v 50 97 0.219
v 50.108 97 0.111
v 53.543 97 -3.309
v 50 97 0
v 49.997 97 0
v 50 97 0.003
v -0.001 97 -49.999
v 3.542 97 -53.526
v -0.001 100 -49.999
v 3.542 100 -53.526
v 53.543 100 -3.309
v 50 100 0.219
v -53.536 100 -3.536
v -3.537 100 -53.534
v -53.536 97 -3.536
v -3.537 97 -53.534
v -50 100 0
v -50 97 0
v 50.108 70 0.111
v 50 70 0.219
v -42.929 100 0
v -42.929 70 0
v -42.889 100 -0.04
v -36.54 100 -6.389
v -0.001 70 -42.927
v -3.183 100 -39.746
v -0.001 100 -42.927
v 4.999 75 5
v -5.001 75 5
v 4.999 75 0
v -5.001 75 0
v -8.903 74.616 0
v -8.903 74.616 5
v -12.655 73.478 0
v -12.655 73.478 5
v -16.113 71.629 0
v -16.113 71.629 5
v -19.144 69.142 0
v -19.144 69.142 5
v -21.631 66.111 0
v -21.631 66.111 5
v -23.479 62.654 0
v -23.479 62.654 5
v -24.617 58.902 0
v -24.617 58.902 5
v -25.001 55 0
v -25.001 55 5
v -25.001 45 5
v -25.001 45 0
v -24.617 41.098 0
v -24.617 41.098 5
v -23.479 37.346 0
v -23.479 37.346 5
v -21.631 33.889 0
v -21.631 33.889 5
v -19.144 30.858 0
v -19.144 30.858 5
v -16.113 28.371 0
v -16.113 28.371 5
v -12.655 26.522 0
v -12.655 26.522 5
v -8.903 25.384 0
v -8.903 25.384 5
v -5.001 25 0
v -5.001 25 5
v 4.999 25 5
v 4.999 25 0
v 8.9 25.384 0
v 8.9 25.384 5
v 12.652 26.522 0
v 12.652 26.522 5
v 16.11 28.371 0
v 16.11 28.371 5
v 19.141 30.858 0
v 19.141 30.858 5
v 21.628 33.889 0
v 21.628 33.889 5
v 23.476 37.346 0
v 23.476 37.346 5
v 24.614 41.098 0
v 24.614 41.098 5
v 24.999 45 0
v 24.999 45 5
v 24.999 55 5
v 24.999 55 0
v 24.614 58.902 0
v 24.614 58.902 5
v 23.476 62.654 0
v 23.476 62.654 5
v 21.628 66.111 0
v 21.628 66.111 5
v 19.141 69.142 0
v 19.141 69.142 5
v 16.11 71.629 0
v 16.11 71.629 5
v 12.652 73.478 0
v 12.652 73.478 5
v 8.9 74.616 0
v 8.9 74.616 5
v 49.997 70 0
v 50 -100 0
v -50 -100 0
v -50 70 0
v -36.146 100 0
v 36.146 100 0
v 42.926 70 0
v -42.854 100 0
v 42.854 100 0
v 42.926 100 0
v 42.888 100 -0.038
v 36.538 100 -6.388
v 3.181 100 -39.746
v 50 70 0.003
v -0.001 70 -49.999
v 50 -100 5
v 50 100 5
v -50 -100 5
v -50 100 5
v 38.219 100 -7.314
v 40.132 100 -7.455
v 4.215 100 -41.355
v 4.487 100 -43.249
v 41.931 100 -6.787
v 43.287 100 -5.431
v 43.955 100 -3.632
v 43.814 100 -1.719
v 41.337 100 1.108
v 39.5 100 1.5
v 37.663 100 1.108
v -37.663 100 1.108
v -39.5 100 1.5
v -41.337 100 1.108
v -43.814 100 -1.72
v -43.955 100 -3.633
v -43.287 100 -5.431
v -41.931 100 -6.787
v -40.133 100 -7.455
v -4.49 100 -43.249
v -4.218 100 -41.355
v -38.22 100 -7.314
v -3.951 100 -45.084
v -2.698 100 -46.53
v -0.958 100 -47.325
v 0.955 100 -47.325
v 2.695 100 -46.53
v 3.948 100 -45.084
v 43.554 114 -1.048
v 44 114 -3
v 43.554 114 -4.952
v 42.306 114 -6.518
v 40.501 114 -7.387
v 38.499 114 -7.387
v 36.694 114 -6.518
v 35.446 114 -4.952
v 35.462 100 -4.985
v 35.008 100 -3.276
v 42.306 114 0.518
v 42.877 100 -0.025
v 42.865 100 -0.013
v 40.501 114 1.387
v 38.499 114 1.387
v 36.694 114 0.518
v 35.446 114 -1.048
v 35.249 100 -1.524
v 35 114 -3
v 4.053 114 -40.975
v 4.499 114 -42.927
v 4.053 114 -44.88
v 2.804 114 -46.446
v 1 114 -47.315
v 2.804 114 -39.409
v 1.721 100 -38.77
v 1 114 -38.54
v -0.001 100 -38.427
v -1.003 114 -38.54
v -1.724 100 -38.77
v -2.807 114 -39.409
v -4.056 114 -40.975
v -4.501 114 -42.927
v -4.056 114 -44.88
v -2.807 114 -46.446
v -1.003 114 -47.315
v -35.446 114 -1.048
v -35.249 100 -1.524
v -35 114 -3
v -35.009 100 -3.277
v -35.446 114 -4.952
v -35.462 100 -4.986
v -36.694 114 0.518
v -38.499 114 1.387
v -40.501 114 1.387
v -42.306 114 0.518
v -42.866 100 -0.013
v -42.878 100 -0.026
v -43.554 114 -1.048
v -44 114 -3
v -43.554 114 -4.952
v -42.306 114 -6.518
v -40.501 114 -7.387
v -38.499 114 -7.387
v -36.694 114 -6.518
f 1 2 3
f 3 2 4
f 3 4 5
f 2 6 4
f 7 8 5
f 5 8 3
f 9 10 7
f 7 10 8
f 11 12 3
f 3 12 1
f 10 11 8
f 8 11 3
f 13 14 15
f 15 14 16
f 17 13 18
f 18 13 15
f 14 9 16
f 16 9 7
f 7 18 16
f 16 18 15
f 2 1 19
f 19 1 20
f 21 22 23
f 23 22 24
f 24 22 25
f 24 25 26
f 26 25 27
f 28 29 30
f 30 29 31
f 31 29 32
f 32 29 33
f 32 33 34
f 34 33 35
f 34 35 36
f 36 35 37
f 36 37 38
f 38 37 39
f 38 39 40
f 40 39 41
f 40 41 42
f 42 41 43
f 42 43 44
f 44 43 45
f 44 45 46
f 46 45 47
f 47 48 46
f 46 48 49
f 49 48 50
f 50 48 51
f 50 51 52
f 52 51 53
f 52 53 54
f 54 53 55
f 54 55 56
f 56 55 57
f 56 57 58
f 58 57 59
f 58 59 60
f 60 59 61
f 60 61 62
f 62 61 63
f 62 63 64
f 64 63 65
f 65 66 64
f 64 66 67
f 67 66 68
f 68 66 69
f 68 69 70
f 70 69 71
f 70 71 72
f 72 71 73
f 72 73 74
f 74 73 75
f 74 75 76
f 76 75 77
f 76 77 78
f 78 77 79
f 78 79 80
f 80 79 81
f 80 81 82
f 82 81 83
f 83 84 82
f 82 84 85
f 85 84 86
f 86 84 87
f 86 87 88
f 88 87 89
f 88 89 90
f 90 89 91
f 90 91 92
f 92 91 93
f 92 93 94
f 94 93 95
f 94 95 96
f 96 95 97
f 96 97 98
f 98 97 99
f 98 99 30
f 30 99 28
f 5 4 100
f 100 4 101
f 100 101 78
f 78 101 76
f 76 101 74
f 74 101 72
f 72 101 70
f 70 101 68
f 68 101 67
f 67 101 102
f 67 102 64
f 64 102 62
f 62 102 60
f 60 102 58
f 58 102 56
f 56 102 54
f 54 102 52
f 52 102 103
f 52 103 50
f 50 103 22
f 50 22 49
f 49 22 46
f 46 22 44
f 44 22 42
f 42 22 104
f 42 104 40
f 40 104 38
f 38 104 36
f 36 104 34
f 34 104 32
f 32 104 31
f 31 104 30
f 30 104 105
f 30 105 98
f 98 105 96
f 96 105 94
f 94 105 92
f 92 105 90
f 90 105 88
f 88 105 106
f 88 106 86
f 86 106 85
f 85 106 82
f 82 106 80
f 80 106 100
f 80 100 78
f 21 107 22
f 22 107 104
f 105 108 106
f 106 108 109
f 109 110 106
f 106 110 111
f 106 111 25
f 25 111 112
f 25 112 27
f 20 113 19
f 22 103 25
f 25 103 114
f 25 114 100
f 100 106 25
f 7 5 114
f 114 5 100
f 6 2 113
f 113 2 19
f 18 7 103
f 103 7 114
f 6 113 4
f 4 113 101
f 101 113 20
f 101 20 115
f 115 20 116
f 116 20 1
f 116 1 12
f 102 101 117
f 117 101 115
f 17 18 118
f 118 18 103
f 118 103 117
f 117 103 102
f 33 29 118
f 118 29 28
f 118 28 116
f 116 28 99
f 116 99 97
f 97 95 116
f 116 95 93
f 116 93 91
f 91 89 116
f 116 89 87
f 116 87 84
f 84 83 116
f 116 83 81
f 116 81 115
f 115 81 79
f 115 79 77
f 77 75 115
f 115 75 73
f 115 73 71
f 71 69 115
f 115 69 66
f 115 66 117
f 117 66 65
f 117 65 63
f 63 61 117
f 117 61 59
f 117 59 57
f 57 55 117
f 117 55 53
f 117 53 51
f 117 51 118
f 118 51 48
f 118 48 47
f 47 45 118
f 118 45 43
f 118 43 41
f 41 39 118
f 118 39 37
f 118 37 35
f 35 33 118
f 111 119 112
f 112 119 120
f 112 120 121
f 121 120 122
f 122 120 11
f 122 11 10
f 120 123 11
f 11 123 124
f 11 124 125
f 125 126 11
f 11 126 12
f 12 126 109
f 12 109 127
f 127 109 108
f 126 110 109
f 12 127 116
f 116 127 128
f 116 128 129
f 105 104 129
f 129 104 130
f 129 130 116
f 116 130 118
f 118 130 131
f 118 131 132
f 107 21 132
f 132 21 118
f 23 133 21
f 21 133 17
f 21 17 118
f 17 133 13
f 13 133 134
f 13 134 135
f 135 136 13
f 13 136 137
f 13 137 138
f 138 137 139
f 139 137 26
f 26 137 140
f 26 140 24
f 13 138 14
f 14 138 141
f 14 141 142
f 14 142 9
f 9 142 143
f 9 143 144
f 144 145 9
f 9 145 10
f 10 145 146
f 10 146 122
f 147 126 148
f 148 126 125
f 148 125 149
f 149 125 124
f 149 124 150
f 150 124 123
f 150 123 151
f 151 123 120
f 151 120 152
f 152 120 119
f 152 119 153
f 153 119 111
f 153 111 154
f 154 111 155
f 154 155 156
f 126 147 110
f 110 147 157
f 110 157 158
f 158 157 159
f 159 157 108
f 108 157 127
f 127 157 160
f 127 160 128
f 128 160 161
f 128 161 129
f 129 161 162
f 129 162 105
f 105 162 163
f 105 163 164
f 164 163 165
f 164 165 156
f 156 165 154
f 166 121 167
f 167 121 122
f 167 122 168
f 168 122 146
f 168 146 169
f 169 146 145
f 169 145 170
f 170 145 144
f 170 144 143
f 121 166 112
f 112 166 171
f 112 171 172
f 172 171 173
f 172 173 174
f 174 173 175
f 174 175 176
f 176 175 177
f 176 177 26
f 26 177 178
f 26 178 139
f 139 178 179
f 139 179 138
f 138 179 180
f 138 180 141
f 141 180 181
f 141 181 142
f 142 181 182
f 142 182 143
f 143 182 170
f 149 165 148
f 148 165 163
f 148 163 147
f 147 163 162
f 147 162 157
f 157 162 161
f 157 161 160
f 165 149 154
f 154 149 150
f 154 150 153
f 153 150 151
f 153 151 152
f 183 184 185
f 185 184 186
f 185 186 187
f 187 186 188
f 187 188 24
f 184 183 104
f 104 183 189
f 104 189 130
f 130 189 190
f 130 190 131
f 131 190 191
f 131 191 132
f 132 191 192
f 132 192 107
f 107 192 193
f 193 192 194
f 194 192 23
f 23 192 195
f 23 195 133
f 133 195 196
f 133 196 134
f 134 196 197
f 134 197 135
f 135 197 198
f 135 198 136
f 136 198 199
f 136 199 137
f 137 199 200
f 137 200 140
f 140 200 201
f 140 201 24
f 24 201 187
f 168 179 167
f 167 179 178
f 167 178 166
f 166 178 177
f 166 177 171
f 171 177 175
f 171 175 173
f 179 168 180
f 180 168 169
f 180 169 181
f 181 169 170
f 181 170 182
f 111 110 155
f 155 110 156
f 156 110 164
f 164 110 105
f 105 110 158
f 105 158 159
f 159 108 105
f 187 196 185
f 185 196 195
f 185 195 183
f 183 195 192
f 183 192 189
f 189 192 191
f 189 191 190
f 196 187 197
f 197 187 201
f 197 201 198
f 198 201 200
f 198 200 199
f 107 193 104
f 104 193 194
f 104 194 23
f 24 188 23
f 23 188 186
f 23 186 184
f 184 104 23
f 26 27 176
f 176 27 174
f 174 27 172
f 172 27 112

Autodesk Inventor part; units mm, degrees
ref_plane "YZ Plane" through (0, 0, 0) normal (1, 0, 0) x (0, 1, 0)
ref_plane "XZ Plane" through (0, 0, 0) normal (0, 1, 0) x (-1, 0, 0)
ref_plane "XY Plane" through (0, 0, 0) normal (0, 0, 1) x (1, 0, 0)
sketch "Sketch1" plane through (0, 0, 0) normal (0, 0, 1) x (1, 0, 0)
  line L0 (-50, -100) -> (50, -100)
  line L1 (50, -100) -> (50, 100)
  line L2 (50, 100) -> (-50, 100)
  line L3 (-50, 100) -> (-50, -100)
  line L4 (-50, -100) -> (50, 100) construction
  line L5 (50, -100) -> (-50, 100) construction
  point P0 (0, 0)
  dimension "d0" = 100
  dimension "d1" = 200
extrude "Extrusion1" add sketch "Sketch1" along normal blind 5
sketch "Sketch2" plane through (-50, 100, 0) normal (0, 1, 0) x (1, 0, 0)
  line L0 (0, 0) -> (100, 0) projected
  line L1 (0, 0) -> (49.9986, 49.9986)
  line L2 (49.9986, 49.9986) -> (53.5341, 46.463)
  line L3 (53.5341, 46.463) -> (3.5355, -3.5355)
  line L4 (3.5355, -3.5355) -> (0, 0)
  line L5 (0, 0) -> (70.7086, 0) construction
  line L6 (100.108, -0.1109) -> (53.5341, 46.463)
  line L7 (53.5341, 46.463) -> (49.9986, 42.9275)
  line L8 (49.9986, 42.9275) -> (96.5724, -3.6464)
  line L9 (96.5724, -3.6464) -> (100.108, -0.1109)
  point P0 (50, 0)
  point P1 (49.9986, 42.9275)
  dimension "d4" = 45
  dimension "d5" = 5
  dimension "d6" = 5
extrude "Extrusion2" add sketch "Sketch2" against normal blind 30 contours L1 L2 L3 L0 | L0 L3 L4 | L8 L3 L6 L0 | L0 L6 L9 L8
sketch "Sketch6" plane through (0, 0, 5) normal (0, 0, 1) x (1, 0, 0)
  line L0 (4.9986, 75) -> (-5.0014, 75)
  line L1 (-25.0014, 55) -> (-25.0014, 45)
  line L2 (-5.0014, 25) -> (4.9986, 25)
  line L3 (24.9986, 45) -> (24.9986, 55)
  line L4 (24.9986, 75) -> (-25.0014, 25) construction
  line L5 (-25.0014, 75) -> (24.9986, 25) construction
  arc A0 (4.9986, 25) -> (24.9986, 45) centre (4.9986, 45) ccw
  arc A1 (24.9986, 55) -> (4.9986, 75) centre (4.9986, 55) ccw
  arc A2 (-5.0014, 75) -> (-25.0014, 55) centre (-5.0014, 55) ccw
  arc A3 (-25.0014, 45) -> (-5.0014, 25) centre (-5.0014, 45) ccw
  point P0 (0, 0)
  point P1 (-0.0014, 50)
  dimension "d21" = 50
  dimension "d22" = 50
  dimension "d23" = 20
extrude "Extrusion6" cut sketch "Sketch6" against normal blind 5
sketch "Sketch10" plane through (-50, 100, 5) normal (0, 1, 0) x (1, 0, 0)
  line L0 (0, 5) -> (7.0711, 5) projected
  line L1 (49.9986, 54.9986) -> (99.9971, 5) projected
  line L2 (0, 5) -> (49.9986, 54.9986)
  line L3 (49.9986, 54.9986) -> (46.463, 58.5341)
  line L4 (46.463, 58.5341) -> (-3.5355, 8.5355)
  line L5 (-3.5355, 8.5355) -> (0, 5)
  line L6 (100, 4.7812) -> (100, 0) projected
  line L7 (100, 4.7812) -> (49.9986, 54.9986)
  line L8 (49.9986, 54.9986) -> (53.5417, 58.5265)
  line L9 (53.5417, 58.5265) -> (103.5431, 8.3091)
  line L10 (103.5431, 8.3091) -> (100, 4.7812)
  line L11 (92.926, 5) -> (49.9986, 47.9275) projected
  line L12 (100, 0) -> (0, 0) projected
  line L13 (0, 0) -> (100, 0)
  point P0 (50, 5)
  dimension "d33" = 5
  dimension "d34" = 5
extrude "Extrusion9" add sketch "Sketch10" against normal blind 3
sketch "Sketch12" plane through (-50, 100, 5) normal (0, 1, 0) x (1, 0, 0)
  circle A0 centre (89.5, 8) radius 4.5
  circle A1 centre (10.5, 8) radius 4.5
  line L0 (49.9986, 47.9275) -> (7.0711, 5) projected
  circle A2 centre (49.9986, 47.9275) radius 4.5
  point P0 (50, 5)
  dimension "d38" = 9
  dimension "d39" = 9
  dimension "d41" = 9
extrude "Extrusion10" add sketch "Sketch12" along normal blind 14
properties part number "fixation_v09"
